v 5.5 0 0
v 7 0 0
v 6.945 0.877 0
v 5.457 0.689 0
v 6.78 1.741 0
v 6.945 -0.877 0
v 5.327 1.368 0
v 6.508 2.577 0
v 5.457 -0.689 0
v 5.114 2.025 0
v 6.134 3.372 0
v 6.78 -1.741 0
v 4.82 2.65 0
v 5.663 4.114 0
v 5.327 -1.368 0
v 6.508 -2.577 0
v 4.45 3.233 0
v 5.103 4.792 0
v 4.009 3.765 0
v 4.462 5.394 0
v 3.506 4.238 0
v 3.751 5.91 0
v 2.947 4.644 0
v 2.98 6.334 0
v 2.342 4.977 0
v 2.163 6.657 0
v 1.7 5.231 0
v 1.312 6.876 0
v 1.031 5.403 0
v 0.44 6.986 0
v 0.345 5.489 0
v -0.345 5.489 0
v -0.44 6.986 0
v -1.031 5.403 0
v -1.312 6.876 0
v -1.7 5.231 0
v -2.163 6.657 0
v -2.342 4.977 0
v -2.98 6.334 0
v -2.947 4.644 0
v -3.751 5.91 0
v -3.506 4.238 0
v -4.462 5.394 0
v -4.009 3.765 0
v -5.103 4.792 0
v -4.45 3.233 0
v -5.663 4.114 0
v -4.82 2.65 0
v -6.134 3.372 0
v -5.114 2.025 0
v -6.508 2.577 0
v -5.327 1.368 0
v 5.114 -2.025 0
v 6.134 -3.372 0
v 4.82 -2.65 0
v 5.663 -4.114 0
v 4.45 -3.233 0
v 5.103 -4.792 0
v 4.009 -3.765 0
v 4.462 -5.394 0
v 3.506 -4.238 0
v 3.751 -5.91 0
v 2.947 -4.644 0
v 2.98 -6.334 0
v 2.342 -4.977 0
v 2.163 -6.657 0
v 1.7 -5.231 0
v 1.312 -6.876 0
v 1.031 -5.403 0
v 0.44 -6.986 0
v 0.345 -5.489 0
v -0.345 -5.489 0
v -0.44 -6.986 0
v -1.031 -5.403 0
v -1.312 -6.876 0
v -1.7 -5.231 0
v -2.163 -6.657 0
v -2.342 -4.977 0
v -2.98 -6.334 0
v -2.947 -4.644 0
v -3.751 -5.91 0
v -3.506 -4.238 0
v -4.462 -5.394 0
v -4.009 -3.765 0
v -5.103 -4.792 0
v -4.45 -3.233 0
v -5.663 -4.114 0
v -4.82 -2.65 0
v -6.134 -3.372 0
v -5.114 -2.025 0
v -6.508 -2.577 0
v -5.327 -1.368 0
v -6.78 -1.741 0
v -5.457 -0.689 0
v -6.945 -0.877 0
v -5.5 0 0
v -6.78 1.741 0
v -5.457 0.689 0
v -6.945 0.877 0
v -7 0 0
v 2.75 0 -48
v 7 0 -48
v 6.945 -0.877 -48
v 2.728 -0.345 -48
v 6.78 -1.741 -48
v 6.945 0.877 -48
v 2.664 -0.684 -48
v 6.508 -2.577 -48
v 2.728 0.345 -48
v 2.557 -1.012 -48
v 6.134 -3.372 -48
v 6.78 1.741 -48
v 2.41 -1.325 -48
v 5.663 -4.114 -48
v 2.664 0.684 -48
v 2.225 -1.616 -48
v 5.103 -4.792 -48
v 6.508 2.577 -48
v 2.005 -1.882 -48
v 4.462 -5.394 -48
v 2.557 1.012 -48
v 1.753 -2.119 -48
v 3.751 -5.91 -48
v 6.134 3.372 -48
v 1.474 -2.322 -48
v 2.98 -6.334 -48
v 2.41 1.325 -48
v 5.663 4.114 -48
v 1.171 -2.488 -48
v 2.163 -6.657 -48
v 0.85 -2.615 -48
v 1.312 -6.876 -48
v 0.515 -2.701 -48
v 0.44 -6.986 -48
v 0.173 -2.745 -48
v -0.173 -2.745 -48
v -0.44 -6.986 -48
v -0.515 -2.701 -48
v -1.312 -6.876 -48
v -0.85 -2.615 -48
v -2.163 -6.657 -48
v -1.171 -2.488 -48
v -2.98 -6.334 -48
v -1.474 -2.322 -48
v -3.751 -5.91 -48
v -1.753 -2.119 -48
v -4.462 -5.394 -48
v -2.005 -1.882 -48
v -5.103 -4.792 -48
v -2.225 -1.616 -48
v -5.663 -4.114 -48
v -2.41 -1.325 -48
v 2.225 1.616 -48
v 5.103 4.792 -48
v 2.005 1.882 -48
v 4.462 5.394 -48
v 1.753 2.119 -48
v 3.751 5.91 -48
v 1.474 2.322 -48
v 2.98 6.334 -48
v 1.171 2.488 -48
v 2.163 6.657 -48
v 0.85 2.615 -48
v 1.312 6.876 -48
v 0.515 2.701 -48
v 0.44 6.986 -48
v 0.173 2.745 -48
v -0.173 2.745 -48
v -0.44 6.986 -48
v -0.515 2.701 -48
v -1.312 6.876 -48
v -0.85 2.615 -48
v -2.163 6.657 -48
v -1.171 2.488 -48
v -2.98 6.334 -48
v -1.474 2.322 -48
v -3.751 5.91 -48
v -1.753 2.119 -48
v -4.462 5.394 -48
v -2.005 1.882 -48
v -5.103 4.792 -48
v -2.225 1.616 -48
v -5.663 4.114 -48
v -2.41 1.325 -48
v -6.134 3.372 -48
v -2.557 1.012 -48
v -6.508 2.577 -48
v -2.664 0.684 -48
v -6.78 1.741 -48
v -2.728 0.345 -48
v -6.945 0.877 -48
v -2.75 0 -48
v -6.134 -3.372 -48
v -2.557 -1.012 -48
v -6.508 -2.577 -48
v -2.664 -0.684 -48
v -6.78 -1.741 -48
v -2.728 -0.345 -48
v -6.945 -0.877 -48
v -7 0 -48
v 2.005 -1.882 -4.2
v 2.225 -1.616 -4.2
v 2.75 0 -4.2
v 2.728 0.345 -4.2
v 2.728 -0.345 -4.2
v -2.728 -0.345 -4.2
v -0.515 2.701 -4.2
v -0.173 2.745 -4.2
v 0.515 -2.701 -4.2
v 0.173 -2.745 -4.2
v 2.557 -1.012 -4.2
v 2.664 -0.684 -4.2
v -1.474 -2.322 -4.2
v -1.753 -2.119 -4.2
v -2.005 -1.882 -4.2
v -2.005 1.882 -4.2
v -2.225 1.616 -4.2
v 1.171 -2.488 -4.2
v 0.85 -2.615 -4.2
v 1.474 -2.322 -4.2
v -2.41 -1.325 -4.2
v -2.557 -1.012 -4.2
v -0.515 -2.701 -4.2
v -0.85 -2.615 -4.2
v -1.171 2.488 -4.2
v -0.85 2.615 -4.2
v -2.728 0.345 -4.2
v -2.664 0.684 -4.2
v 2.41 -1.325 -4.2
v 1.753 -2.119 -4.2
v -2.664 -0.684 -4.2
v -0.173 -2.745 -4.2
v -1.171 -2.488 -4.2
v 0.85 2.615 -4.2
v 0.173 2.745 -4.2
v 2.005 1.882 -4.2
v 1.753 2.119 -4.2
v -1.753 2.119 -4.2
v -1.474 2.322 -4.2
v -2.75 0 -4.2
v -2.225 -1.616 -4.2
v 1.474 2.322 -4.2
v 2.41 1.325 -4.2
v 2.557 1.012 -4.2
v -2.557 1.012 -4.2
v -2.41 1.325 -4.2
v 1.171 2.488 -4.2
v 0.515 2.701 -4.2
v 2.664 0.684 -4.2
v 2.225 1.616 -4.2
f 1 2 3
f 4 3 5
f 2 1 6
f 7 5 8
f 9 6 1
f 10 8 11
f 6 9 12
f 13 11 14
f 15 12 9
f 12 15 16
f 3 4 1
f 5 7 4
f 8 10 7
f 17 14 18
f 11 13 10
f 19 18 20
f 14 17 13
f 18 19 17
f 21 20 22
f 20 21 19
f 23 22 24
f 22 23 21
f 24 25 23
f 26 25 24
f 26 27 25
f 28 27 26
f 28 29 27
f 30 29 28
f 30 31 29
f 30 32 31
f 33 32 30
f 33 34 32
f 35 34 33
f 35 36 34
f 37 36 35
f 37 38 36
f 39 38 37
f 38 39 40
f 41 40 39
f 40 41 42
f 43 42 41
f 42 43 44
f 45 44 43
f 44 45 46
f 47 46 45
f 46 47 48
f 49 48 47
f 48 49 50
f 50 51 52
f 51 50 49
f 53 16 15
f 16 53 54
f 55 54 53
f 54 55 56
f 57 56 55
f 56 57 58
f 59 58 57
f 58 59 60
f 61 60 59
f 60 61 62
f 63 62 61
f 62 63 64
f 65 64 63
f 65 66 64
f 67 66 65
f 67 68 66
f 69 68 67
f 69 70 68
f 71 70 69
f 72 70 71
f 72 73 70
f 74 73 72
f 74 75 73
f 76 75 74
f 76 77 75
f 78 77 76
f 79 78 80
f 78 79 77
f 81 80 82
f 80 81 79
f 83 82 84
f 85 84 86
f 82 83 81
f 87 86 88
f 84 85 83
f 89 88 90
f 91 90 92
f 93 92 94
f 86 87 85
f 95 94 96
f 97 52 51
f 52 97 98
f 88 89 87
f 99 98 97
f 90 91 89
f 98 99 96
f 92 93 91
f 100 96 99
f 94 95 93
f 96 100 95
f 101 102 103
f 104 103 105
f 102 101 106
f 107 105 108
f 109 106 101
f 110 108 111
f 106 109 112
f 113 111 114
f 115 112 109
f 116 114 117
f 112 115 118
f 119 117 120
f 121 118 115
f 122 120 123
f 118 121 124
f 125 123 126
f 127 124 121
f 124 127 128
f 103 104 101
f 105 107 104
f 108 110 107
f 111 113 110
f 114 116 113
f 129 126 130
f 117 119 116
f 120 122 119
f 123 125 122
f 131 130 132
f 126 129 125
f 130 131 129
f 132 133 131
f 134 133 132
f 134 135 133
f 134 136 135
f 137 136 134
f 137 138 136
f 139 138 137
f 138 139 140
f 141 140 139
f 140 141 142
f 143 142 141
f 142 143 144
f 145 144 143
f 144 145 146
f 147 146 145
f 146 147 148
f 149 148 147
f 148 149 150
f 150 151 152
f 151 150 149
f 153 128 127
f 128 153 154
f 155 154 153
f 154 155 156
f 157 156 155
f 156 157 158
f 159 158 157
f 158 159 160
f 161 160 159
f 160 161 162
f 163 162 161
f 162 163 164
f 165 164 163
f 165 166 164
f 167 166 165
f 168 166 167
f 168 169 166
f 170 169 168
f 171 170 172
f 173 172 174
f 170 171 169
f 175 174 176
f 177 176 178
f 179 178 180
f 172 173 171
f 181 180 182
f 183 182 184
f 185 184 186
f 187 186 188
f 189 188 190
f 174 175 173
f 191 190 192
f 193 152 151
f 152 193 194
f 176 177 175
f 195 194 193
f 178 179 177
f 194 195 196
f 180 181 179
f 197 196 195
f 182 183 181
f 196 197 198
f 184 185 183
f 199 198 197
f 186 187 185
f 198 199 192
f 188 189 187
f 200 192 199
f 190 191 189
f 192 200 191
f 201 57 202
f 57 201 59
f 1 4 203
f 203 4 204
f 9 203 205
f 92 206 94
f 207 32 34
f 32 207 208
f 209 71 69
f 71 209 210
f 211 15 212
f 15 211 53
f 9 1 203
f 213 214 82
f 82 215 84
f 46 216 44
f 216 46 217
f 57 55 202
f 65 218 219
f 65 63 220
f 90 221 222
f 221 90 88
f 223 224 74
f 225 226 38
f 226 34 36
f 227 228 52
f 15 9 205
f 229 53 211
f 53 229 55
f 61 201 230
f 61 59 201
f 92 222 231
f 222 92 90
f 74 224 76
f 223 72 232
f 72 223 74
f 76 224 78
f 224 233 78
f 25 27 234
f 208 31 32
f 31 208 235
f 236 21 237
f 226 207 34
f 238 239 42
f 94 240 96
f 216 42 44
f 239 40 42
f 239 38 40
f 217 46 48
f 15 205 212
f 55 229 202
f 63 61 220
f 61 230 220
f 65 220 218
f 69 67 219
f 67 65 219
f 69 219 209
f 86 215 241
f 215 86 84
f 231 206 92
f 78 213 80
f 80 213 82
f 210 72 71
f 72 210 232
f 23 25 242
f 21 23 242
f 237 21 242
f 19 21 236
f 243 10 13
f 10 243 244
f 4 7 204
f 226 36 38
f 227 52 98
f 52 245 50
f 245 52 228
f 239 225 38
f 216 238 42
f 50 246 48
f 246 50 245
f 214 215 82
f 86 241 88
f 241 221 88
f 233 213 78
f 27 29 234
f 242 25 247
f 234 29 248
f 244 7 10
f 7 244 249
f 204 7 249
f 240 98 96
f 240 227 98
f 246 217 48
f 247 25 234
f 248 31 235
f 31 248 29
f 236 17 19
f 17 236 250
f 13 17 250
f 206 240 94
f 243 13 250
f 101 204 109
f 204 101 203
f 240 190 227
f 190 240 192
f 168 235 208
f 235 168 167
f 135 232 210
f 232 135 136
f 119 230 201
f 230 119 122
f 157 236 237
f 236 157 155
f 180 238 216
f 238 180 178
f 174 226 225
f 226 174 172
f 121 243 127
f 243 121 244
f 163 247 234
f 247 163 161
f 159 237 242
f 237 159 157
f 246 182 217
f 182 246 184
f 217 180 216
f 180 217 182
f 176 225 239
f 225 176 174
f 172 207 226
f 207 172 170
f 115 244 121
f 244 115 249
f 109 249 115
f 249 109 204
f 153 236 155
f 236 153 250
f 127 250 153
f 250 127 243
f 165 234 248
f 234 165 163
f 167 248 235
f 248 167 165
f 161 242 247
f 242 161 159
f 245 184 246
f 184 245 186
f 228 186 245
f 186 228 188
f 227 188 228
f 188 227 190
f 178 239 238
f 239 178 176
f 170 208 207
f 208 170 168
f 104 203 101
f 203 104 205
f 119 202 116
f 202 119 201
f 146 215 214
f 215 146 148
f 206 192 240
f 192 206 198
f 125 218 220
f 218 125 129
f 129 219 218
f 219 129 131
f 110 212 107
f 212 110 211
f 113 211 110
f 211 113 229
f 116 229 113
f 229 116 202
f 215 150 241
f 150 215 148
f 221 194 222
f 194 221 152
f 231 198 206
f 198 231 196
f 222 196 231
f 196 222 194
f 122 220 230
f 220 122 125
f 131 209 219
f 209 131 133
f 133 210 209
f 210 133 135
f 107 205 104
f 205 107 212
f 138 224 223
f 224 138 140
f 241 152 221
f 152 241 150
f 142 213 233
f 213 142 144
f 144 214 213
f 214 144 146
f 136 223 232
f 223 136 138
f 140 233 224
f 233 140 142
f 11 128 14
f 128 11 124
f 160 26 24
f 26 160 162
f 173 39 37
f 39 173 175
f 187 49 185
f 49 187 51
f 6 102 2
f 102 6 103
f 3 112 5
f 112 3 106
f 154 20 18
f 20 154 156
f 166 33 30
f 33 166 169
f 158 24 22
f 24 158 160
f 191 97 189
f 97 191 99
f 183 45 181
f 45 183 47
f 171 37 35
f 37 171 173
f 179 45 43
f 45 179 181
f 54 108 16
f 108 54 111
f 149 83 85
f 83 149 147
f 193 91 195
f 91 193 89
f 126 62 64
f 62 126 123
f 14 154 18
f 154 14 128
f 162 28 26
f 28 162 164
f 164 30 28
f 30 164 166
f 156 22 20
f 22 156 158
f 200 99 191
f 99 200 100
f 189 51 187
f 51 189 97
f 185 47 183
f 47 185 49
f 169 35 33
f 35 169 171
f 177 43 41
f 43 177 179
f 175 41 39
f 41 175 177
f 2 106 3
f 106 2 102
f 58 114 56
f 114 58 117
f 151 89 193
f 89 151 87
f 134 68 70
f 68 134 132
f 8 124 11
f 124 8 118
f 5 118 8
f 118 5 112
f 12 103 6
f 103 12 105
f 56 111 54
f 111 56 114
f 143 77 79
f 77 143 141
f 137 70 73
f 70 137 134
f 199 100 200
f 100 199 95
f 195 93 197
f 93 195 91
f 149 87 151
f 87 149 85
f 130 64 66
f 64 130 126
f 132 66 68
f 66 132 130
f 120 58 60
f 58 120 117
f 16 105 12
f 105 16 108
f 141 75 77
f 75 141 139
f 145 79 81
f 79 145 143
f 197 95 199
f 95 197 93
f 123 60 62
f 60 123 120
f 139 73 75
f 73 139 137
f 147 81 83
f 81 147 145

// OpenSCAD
$fn = 50;


difference() {
	union() {
		translate(v = [0, 0, -48.0000000000]) {
			cylinder(h = 48, r = 7.0000000000);
		}
		cylinder(h = 0, r = 13.0000000000);
	}
	union() {
		translate(v = [0, 0, 0]) {
			rotate(a = [0, 0, 0]) {
				difference() {
					union() {
						#translate(v = [0, 0, -48.0000000000]) {
							cylinder(h = 48, r = 2.2500000000);
						}
						#translate(v = [0, 0, -4.2000000000]) {
							cylinder(h = 4.2000000000, r = 7.0000000000, r1 = 2.7500000000, r2 = 5.5000000000);
						}
						#translate(v = [0, 0, -48.0000000000]) {
							cylinder(h = 48, r = 2.7500000000);
						}
						#translate(v = [0, 0, -48.0000000000]) {
							cylinder(h = 48, r = 2.2500000000);
						}
					}
					union();
				}
			}
		}
	}
}
